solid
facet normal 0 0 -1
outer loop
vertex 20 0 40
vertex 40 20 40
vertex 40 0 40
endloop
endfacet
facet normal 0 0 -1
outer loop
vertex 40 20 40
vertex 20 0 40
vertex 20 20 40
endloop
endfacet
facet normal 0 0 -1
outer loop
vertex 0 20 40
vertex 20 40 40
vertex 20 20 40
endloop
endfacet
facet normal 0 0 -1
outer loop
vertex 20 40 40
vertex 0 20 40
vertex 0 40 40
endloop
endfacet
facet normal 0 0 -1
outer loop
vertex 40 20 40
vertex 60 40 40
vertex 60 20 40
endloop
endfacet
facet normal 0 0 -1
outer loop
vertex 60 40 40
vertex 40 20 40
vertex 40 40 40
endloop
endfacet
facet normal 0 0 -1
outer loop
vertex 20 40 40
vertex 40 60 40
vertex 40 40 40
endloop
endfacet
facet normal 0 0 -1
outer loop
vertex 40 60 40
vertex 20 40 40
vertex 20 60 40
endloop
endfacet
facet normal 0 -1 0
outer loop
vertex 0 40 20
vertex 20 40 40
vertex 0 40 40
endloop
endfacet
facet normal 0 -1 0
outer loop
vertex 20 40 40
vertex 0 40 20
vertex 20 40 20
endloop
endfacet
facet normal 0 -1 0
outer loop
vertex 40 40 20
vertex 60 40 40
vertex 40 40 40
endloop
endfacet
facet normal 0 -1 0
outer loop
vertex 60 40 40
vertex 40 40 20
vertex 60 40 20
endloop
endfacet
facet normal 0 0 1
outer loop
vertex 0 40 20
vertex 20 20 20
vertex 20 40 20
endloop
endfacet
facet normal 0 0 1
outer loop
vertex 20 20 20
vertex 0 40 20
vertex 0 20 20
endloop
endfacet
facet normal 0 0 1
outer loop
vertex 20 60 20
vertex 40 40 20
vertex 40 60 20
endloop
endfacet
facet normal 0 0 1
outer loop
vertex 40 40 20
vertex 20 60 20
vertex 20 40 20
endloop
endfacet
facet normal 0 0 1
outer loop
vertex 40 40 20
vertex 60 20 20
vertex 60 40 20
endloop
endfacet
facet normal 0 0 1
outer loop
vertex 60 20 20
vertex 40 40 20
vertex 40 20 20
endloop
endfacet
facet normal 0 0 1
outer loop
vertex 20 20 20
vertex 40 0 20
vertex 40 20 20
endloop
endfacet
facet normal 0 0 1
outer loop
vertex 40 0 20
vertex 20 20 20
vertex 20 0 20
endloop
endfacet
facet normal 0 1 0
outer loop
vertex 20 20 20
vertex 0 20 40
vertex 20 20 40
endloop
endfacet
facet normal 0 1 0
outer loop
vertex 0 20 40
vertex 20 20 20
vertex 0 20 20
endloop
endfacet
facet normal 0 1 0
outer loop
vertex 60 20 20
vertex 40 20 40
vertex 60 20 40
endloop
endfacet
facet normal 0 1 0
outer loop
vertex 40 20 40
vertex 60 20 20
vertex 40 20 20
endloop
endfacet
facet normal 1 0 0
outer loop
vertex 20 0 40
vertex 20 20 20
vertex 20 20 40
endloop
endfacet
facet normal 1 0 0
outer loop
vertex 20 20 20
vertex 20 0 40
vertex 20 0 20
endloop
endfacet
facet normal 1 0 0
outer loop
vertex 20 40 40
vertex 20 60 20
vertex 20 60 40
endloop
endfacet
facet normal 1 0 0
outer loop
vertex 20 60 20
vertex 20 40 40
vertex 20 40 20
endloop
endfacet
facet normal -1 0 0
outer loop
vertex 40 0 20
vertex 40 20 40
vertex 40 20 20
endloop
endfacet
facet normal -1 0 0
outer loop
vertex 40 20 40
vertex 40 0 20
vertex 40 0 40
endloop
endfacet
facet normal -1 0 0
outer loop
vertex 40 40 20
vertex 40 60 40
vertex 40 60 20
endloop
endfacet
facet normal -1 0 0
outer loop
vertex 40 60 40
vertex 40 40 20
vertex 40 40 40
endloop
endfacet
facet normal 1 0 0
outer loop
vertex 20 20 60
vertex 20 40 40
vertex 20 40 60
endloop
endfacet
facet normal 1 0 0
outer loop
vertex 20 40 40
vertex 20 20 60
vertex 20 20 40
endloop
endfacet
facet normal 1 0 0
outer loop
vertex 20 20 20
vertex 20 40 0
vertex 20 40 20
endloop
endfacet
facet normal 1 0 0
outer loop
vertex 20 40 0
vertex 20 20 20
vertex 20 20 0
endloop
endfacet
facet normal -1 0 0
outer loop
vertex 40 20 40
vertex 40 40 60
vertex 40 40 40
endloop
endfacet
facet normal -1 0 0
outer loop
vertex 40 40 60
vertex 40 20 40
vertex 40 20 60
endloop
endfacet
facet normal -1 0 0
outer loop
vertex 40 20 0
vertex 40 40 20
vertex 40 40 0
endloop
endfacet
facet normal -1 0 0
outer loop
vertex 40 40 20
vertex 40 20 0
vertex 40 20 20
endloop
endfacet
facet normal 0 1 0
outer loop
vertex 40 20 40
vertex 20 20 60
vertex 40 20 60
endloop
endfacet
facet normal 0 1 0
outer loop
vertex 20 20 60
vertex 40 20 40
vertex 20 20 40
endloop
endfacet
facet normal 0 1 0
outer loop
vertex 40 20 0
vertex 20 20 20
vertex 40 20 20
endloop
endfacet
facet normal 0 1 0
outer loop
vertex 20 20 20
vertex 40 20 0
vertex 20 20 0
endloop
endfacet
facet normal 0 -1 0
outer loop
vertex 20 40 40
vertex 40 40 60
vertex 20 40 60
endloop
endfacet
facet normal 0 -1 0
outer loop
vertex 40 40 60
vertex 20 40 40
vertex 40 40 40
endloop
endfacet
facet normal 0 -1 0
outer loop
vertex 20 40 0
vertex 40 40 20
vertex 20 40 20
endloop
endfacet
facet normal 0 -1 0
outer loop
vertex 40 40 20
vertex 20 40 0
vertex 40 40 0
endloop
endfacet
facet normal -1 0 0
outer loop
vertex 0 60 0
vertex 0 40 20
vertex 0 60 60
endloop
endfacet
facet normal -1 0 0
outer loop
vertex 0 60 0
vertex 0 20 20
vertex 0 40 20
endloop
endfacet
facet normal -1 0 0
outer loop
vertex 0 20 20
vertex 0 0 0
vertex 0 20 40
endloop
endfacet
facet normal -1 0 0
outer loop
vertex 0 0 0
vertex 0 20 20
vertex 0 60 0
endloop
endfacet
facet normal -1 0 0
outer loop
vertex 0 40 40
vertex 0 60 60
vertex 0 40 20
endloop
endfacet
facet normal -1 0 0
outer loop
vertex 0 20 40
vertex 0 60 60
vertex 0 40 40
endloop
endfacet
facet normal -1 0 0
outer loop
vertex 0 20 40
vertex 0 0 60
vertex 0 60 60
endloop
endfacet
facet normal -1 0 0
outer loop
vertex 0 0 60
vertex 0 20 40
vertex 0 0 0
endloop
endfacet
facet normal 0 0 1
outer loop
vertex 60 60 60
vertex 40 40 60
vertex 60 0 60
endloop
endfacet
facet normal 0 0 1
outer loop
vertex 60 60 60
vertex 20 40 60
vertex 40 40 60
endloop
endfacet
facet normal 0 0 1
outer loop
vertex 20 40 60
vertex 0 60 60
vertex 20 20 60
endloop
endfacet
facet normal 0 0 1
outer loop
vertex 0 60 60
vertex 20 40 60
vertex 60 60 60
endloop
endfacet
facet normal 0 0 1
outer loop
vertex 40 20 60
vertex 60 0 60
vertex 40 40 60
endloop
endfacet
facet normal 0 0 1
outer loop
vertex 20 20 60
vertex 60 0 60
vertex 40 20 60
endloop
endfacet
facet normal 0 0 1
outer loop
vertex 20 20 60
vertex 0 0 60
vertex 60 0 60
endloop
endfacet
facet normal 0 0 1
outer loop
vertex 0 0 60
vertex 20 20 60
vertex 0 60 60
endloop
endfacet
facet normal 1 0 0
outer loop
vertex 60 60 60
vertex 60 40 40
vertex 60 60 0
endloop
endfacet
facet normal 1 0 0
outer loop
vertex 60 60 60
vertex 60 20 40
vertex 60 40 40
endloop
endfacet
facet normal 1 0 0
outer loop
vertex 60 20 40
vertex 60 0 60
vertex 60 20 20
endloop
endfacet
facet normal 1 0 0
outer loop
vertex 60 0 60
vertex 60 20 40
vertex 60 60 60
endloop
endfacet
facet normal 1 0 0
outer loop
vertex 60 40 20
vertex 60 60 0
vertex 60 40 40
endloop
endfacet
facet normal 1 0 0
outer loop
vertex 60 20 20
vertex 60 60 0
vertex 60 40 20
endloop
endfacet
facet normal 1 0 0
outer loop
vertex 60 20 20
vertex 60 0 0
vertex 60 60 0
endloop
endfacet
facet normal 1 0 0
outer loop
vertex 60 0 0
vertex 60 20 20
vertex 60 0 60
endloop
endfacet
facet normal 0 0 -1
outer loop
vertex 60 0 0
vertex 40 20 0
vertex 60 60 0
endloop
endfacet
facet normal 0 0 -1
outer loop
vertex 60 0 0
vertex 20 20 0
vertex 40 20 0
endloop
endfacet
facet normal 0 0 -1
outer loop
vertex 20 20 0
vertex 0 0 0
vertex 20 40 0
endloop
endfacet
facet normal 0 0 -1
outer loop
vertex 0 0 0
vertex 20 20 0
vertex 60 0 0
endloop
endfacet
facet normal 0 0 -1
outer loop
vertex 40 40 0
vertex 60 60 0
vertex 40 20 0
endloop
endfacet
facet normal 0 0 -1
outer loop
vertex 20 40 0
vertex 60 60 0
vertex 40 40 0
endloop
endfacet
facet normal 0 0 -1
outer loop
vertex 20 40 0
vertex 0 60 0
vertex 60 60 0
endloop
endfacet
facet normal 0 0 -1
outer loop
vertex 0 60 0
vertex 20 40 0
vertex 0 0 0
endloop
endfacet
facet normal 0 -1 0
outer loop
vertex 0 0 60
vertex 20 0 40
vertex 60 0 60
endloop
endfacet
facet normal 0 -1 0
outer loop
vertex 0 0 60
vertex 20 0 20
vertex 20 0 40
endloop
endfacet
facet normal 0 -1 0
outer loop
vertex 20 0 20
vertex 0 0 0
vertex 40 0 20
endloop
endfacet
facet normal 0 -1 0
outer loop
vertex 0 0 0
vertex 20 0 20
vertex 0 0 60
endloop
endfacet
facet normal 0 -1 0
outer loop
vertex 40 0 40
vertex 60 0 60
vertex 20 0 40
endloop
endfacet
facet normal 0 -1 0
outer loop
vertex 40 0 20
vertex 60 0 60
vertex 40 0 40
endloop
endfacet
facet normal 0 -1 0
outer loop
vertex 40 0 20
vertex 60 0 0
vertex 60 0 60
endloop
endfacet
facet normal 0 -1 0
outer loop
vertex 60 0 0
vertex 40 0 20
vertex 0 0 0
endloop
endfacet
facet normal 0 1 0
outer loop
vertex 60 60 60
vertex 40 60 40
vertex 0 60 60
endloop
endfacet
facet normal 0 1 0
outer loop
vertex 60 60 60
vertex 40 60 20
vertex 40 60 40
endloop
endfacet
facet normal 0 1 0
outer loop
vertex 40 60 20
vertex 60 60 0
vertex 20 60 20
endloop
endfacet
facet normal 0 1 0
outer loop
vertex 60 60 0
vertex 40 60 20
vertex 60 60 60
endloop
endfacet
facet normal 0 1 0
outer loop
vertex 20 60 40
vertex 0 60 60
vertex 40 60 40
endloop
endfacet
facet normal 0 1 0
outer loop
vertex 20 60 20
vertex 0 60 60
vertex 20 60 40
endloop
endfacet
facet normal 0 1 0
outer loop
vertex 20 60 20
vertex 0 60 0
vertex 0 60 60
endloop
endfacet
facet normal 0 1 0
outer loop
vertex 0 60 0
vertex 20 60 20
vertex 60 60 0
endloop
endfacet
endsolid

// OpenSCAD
a=60;

module box(p=[a/3,a/3,a/3], s=[1,1,1]) {
    translate(p) scale(s) cube(a/3);
}
module inside() {
    union(){
        box([-a/3,a/3,a/3], [5,1,1]);
        
        box([a/3,-a/3,a/3], [1,5,1]);
        
        box([a/3,a/3,-a/3], [1,1,5]);
    }
}


difference() {
    cube(a);
    inside();
}
